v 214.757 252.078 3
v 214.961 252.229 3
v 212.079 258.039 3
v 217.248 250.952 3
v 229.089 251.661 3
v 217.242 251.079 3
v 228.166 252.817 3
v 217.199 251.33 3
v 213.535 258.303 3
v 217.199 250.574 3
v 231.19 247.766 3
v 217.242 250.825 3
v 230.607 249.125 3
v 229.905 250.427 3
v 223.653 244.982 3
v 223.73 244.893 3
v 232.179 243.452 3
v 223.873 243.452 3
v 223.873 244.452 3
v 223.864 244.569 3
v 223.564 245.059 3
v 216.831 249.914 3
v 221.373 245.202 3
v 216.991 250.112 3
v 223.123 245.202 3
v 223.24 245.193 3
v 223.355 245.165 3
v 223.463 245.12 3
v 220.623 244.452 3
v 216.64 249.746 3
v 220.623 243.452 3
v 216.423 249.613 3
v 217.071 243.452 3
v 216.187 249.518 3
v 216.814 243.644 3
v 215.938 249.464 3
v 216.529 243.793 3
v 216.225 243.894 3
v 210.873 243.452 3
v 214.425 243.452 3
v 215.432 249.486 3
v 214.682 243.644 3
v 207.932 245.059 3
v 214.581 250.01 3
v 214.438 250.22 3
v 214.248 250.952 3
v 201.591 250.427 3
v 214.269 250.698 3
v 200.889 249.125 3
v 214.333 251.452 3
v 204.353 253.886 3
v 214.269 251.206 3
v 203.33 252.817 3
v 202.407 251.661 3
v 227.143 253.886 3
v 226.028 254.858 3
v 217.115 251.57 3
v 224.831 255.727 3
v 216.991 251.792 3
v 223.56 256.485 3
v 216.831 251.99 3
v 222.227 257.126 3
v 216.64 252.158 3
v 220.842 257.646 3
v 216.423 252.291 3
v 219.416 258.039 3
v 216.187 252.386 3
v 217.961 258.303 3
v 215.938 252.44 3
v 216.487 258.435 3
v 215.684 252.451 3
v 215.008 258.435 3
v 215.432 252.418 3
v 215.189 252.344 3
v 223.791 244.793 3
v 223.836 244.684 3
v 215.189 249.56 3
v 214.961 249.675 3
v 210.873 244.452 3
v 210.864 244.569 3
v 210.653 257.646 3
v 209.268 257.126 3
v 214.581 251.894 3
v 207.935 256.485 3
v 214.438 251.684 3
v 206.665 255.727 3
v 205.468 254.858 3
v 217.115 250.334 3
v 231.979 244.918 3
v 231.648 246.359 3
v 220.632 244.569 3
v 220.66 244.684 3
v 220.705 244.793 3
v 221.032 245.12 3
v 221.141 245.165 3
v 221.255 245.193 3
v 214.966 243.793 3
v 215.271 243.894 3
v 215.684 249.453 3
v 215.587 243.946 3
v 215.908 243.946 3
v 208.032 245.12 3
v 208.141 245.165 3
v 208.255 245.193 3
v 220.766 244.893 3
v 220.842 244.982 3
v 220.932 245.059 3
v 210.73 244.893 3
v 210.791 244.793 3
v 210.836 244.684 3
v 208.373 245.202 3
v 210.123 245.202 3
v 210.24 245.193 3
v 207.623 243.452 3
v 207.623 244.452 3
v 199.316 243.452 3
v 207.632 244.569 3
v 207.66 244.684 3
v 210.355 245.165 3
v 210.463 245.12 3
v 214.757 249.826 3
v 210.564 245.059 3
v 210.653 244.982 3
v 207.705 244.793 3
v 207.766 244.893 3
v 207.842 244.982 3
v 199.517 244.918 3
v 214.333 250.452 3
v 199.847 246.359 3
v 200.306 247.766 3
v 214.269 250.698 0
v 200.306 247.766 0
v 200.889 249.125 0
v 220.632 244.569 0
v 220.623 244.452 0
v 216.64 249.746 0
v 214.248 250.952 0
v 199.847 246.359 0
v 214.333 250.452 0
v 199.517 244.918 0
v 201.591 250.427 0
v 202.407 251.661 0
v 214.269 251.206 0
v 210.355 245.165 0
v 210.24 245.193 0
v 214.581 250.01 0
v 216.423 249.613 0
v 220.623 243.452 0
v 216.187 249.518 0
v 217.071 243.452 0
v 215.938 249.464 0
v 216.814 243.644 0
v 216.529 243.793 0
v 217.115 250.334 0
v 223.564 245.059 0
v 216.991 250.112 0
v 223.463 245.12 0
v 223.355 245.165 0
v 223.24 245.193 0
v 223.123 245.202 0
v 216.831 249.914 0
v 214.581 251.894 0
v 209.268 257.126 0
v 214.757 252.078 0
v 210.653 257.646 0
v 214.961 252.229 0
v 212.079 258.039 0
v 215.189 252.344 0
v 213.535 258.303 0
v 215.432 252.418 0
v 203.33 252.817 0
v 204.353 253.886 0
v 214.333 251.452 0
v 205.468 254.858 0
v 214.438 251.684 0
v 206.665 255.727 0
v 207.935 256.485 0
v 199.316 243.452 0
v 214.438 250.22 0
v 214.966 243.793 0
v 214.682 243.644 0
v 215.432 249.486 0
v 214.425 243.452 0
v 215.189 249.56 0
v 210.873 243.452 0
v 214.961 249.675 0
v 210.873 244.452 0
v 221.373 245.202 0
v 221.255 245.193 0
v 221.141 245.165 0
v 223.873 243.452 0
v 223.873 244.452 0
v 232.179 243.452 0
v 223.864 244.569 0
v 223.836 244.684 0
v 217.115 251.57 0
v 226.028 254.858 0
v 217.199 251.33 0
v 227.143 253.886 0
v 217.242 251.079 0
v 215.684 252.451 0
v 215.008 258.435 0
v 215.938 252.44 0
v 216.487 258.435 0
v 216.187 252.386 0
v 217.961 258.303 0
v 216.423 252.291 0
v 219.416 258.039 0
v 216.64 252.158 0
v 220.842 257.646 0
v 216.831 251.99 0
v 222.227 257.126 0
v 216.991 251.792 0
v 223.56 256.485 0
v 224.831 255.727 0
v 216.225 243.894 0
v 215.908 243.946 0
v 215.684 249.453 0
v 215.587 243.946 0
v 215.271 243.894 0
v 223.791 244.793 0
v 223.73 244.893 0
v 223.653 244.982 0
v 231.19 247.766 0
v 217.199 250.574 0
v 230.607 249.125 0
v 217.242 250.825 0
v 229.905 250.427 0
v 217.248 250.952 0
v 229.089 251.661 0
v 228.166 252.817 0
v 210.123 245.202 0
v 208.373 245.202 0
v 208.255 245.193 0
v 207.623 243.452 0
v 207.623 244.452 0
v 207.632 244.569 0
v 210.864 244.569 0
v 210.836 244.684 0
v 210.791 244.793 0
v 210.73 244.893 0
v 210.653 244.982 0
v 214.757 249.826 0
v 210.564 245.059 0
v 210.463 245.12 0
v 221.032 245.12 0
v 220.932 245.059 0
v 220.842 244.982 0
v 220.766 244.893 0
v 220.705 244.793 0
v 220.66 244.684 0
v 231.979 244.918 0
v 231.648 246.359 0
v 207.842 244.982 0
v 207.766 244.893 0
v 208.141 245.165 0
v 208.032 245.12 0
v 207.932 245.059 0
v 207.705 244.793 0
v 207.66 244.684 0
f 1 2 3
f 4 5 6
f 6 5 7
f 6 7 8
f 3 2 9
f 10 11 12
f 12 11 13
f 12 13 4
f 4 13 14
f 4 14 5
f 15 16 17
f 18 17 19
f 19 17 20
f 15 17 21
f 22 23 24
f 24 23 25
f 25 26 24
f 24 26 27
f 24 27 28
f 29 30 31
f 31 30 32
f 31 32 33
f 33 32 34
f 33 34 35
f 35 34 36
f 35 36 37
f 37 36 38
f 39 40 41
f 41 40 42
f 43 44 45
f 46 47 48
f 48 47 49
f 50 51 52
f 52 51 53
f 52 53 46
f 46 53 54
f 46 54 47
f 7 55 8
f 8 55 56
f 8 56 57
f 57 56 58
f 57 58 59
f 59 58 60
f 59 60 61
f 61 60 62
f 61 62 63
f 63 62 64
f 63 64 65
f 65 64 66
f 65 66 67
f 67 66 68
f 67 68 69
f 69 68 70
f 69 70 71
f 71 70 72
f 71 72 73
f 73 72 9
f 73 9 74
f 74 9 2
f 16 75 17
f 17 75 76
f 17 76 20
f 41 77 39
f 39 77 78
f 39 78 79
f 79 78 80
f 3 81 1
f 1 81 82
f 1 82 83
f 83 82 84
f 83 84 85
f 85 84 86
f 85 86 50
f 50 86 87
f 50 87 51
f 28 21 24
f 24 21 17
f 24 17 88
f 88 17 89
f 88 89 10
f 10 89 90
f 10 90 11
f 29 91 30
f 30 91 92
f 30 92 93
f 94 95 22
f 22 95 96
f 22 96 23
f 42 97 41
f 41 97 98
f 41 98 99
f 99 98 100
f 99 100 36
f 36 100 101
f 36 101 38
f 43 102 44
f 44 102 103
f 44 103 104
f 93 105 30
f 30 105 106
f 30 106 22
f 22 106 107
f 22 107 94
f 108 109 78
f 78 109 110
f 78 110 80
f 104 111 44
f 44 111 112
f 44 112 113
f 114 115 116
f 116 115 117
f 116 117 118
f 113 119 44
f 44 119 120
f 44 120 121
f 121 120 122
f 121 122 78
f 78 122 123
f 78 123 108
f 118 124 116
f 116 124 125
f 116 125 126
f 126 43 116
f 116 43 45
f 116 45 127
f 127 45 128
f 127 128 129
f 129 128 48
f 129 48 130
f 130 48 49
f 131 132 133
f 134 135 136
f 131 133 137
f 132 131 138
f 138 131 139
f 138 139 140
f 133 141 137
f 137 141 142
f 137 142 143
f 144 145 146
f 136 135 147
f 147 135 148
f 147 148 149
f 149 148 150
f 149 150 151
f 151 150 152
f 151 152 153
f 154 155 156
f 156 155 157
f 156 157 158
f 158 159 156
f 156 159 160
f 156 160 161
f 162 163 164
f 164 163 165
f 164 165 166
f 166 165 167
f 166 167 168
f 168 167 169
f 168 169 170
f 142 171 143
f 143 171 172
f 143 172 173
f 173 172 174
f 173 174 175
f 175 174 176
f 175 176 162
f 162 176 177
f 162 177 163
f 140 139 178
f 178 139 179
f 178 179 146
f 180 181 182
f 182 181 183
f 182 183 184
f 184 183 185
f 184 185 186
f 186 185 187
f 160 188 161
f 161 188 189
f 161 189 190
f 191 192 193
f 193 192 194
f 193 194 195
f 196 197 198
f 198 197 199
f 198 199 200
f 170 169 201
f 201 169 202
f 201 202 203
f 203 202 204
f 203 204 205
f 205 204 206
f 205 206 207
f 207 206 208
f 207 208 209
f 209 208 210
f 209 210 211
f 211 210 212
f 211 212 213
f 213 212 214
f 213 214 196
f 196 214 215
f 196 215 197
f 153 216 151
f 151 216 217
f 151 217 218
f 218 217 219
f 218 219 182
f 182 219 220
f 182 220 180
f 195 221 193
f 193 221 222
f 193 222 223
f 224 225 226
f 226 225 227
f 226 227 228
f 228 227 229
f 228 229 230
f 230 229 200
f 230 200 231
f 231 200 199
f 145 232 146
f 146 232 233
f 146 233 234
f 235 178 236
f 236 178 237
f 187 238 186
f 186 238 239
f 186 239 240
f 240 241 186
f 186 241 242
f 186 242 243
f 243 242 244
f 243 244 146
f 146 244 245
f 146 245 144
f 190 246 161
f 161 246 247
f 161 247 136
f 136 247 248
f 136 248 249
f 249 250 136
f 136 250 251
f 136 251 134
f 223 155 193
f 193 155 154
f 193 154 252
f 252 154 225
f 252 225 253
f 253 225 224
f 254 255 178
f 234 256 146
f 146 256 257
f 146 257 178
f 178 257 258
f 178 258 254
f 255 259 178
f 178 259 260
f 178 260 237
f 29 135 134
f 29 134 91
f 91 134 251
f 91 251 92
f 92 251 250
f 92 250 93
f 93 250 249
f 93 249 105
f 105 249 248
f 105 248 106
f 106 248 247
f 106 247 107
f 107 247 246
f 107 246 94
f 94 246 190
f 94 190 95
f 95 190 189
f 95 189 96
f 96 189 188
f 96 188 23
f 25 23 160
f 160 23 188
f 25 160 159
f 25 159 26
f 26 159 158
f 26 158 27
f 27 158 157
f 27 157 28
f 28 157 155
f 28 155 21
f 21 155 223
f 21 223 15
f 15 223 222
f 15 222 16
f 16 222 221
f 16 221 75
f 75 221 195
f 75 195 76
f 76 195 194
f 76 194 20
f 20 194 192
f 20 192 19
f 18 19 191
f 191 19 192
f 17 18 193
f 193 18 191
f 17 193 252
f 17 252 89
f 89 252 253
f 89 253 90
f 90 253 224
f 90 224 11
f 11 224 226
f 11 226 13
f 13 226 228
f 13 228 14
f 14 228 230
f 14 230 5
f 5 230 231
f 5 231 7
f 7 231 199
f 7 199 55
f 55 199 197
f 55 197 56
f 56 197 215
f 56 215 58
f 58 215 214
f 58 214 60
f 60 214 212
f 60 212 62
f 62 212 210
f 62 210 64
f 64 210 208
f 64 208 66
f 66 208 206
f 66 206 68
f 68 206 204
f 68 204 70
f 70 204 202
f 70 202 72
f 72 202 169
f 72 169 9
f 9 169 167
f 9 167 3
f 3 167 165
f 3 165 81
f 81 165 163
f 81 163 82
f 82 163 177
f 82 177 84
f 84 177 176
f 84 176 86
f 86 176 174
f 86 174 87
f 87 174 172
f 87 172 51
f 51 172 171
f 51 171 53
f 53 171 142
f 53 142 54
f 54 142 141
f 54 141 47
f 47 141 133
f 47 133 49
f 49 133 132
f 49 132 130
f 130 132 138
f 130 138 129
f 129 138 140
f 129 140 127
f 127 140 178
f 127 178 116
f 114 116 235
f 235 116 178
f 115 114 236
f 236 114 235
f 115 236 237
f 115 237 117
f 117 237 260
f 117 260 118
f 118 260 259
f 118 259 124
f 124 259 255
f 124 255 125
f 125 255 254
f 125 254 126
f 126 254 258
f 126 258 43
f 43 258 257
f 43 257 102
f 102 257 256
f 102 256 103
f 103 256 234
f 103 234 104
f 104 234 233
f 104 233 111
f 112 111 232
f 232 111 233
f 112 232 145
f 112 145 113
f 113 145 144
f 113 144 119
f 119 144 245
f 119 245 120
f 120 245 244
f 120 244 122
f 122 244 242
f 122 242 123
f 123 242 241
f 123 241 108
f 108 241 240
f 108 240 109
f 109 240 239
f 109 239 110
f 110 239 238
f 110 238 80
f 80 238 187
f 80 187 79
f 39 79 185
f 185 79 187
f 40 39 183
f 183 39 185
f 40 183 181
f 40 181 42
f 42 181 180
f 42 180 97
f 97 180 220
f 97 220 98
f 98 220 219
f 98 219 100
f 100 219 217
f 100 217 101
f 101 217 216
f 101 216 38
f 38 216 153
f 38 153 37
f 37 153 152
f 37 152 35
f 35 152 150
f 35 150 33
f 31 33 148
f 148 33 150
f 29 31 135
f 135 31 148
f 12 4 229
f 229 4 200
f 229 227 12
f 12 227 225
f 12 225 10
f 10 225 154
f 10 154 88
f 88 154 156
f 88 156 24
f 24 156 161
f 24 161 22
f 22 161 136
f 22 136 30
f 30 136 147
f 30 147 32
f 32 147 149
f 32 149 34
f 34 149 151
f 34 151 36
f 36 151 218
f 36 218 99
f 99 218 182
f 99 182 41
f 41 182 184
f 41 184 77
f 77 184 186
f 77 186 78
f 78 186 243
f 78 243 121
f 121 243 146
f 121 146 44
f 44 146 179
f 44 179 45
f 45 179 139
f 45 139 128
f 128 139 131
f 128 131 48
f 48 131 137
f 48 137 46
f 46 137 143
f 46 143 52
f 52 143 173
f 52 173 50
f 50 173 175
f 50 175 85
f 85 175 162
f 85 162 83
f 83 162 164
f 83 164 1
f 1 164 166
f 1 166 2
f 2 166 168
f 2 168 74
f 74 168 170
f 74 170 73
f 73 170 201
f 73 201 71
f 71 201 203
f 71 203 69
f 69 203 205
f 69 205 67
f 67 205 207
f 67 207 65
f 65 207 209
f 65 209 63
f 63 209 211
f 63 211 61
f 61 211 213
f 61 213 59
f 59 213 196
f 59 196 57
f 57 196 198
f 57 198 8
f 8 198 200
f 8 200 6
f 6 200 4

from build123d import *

# Parameters (mm, degrees)
MODEL_R                 = 1.5
SALIENTE_EXTRUIR1_DEPTH = 3


with BuildPart() as part:
    # Model → Saliente-Extruir1 (new body)
    with BuildSketch(Plane.XY):
        with BuildLine():
            Line((223.122807913, 245.202019993), (221.372807913, 245.202019993))
            ThreePointArc((221.372807913, 245.202019993), (220.842477828, 244.982350079), (220.622807913, 244.452019993))
            Line((220.622807913, 244.452019993), (220.622807913, 243.452019993))
            Line((220.622807913, 243.452019993), (217.070683569, 243.452019993))
            ThreePointArc((217.070683569, 243.452019993), (215.747807914, 243.952019993), (214.424932258, 243.452019993))
            Line((214.424932258, 243.452019993), (210.872807913, 243.452019993))
            Line((210.872807913, 243.452019993), (210.872807913, 244.452019993))
            ThreePointArc((210.872807913, 244.452019993), (210.653137999, 244.982350079), (210.122807913, 245.202019993))
            Line((210.122807913, 245.202019993), (208.372807913, 245.202019993))
            ThreePointArc((208.372807913, 245.202019993), (207.842477828, 244.982350079), (207.622807913, 244.452019993))
            Line((207.622807913, 244.452019993), (207.622807913, 243.452019993))
            Line((207.622807913, 243.452019993), (199.316131188, 243.452019993))
            ThreePointArc((199.316131188, 243.452019993), (215.747807914, 258.452019993), (232.179484639, 243.452019993))
            Line((232.179484639, 243.452019993), (223.872807913, 243.452019993))
            Line((223.872807913, 243.452019993), (223.872807913, 244.452019993))
            ThreePointArc((223.872807913, 244.452019993), (223.653137999, 244.982350079), (223.122807913, 245.202019993))
        make_face()
        with Locations((215.747807914, 250.952019993)):
            Circle(MODEL_R, mode=Mode.SUBTRACT)
    extrude(amount=SALIENTE_EXTRUIR1_DEPTH)


solid = part.part
